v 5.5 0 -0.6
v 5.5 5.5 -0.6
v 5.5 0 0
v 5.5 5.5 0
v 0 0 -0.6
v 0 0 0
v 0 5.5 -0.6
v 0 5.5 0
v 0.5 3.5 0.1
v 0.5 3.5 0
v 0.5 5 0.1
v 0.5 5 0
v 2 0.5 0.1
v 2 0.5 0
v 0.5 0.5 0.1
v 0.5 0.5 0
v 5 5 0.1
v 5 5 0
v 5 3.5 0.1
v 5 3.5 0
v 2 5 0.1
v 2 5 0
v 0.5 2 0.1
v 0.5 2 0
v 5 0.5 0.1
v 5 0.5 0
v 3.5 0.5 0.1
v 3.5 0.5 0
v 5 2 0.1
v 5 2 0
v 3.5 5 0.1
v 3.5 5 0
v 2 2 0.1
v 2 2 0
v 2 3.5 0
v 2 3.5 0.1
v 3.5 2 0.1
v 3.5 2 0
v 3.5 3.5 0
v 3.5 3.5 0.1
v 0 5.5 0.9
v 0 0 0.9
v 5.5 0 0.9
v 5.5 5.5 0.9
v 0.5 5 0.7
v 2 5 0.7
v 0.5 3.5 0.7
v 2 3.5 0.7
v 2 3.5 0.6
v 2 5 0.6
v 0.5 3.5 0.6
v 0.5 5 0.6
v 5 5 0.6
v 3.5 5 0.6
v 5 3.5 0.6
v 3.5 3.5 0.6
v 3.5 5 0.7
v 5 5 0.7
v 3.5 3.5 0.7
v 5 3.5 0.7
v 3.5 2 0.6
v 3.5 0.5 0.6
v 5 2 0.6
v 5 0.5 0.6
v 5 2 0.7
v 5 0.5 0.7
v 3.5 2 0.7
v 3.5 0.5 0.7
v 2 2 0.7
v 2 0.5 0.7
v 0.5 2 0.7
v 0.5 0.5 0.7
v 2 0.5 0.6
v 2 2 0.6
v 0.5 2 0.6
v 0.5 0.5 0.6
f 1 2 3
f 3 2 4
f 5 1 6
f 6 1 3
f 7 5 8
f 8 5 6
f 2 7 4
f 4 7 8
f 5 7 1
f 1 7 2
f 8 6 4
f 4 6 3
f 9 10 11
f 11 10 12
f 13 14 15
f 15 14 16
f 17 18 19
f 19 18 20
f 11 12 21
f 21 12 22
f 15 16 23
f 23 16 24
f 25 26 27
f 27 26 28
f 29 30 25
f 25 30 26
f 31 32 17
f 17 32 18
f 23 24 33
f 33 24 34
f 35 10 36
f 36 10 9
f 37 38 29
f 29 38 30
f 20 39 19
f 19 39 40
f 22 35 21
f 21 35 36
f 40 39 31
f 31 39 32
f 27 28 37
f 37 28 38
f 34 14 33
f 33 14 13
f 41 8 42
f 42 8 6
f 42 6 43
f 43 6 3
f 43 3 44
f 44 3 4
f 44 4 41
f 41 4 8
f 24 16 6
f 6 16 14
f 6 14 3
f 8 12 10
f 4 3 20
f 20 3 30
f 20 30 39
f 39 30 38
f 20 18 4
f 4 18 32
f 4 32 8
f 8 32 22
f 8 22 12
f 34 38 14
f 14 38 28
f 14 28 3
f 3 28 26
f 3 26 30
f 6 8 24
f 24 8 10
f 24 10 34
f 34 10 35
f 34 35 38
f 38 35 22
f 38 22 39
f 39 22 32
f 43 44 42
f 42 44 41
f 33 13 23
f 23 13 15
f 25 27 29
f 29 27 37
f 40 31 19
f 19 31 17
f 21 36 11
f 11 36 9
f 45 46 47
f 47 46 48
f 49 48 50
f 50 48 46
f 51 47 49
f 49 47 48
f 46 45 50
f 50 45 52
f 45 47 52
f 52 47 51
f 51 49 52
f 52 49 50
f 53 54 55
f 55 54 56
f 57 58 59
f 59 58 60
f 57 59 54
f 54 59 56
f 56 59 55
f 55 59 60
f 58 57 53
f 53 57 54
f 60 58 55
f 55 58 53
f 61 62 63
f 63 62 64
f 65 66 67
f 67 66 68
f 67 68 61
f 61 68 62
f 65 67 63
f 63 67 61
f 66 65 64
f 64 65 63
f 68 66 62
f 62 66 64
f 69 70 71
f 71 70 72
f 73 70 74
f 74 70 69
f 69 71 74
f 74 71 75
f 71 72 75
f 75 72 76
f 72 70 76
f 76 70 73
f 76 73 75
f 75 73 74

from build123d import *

# Parameters (mm, degrees)
SKETCH_2_W          = 5.5
SKETCH_2_H          = 5.5
SKETCH_2_W_2        = 4.5
SKETCH_2_H_2        = 4.5
EXTRUDE_2_DEPTH     = 0.8
SKETCH_3_W          = 5.5
SKETCH_3_H          = 5.5
EXTRUDE_3_DEPTH     = 0.2
SKETCH_10_W         = 5.5
SKETCH_10_H         = 5.5
CUT_EXTRUDE_1_DEPTH = 0.3
SKETCH_13_W         = 5.5
SKETCH_13_H         = 5.5
EXTRUDE_7_DEPTH     = 0.2
SKETCH_12_W         = 4.5
SKETCH_12_H         = 1.5
SKETCH_12_W_2       = 1.5
SKETCH_12_H_2       = 4.5
EXTRUDE_3_2_DEPTH   = 0.7
SKETCH_14_W         = 5.5
SKETCH_14_H         = 5.5
EXTRUDE_8_DEPTH     = 0.6
SKETCH_15_W         = 0.5
SKETCH_15_H         = 4.5
EXTRUDE_4_DEPTH     = 4.5


with BuildPart() as part:
    # 草图2 → Extrude 2 (new body)
    with BuildSketch(Plane.XY):
        with Locations((2.75, 2.75)):
            Rectangle(SKETCH_2_W, SKETCH_2_H)
        with Locations((2.75, 2.75)):
            Rectangle(SKETCH_2_W_2, SKETCH_2_H_2, mode=Mode.SUBTRACT)
    extrude(amount=EXTRUDE_2_DEPTH)

    # 草图3 → Extrude 3 (add)
    with BuildSketch(Plane.XY.offset(0.8)):
        with Locations((2.75, 2.75)):
            Rectangle(SKETCH_3_W, SKETCH_3_H)
    extrude(amount=EXTRUDE_3_DEPTH)

    # 草图10 → 切除-拉伸1 (cut)
    with BuildSketch(Plane.XY.offset(1)):
        with Locations((2.75, 2.75)):
            Rectangle(SKETCH_10_W, SKETCH_10_H)
    extrude(amount=-CUT_EXTRUDE_1_DEPTH, mode=Mode.SUBTRACT)

    # 草图13 → 凸台-拉伸7 (add)
    with BuildSketch(Plane.XY.offset(0.7)):
        with Locations((2.75, 2.75)):
            Rectangle(SKETCH_13_W, SKETCH_13_H)
    extrude(amount=EXTRUDE_7_DEPTH)

    # 草图12 → Extrude 3 2 (add)
    with BuildSketch(Plane(origin=(0, 0, 0), x_dir=(-1, 0, 0), z_dir=(0, 0, -1))):
        with Locations((-2.75, 2.75)):
            Rectangle(SKETCH_12_W, SKETCH_12_H)
        with Locations((-2.75, 2.75)):
            Rectangle(SKETCH_12_W_2, SKETCH_12_H_2)
    extrude(amount=-EXTRUDE_3_2_DEPTH)

    # 草图15 → Extrude 4 (add)
    with BuildSketch(Plane.ZY.offset(-5)):
        with Locations((0.35, 2.75)):
            Rectangle(SKETCH_15_W, SKETCH_15_H)
    extrude(amount=EXTRUDE_4_DEPTH)


with BuildPart() as body_2:
    # 草图14 → 凸台-拉伸8 (new body)
    with BuildSketch(Plane(origin=(0, 0, 0), x_dir=(-1, 0, 0), z_dir=(0, 0, -1))):
        with Locations((-2.75, 2.75)):
            Rectangle(SKETCH_14_W, SKETCH_14_H)
    extrude(amount=EXTRUDE_8_DEPTH)


solid = Compound([part.part, body_2.part])
